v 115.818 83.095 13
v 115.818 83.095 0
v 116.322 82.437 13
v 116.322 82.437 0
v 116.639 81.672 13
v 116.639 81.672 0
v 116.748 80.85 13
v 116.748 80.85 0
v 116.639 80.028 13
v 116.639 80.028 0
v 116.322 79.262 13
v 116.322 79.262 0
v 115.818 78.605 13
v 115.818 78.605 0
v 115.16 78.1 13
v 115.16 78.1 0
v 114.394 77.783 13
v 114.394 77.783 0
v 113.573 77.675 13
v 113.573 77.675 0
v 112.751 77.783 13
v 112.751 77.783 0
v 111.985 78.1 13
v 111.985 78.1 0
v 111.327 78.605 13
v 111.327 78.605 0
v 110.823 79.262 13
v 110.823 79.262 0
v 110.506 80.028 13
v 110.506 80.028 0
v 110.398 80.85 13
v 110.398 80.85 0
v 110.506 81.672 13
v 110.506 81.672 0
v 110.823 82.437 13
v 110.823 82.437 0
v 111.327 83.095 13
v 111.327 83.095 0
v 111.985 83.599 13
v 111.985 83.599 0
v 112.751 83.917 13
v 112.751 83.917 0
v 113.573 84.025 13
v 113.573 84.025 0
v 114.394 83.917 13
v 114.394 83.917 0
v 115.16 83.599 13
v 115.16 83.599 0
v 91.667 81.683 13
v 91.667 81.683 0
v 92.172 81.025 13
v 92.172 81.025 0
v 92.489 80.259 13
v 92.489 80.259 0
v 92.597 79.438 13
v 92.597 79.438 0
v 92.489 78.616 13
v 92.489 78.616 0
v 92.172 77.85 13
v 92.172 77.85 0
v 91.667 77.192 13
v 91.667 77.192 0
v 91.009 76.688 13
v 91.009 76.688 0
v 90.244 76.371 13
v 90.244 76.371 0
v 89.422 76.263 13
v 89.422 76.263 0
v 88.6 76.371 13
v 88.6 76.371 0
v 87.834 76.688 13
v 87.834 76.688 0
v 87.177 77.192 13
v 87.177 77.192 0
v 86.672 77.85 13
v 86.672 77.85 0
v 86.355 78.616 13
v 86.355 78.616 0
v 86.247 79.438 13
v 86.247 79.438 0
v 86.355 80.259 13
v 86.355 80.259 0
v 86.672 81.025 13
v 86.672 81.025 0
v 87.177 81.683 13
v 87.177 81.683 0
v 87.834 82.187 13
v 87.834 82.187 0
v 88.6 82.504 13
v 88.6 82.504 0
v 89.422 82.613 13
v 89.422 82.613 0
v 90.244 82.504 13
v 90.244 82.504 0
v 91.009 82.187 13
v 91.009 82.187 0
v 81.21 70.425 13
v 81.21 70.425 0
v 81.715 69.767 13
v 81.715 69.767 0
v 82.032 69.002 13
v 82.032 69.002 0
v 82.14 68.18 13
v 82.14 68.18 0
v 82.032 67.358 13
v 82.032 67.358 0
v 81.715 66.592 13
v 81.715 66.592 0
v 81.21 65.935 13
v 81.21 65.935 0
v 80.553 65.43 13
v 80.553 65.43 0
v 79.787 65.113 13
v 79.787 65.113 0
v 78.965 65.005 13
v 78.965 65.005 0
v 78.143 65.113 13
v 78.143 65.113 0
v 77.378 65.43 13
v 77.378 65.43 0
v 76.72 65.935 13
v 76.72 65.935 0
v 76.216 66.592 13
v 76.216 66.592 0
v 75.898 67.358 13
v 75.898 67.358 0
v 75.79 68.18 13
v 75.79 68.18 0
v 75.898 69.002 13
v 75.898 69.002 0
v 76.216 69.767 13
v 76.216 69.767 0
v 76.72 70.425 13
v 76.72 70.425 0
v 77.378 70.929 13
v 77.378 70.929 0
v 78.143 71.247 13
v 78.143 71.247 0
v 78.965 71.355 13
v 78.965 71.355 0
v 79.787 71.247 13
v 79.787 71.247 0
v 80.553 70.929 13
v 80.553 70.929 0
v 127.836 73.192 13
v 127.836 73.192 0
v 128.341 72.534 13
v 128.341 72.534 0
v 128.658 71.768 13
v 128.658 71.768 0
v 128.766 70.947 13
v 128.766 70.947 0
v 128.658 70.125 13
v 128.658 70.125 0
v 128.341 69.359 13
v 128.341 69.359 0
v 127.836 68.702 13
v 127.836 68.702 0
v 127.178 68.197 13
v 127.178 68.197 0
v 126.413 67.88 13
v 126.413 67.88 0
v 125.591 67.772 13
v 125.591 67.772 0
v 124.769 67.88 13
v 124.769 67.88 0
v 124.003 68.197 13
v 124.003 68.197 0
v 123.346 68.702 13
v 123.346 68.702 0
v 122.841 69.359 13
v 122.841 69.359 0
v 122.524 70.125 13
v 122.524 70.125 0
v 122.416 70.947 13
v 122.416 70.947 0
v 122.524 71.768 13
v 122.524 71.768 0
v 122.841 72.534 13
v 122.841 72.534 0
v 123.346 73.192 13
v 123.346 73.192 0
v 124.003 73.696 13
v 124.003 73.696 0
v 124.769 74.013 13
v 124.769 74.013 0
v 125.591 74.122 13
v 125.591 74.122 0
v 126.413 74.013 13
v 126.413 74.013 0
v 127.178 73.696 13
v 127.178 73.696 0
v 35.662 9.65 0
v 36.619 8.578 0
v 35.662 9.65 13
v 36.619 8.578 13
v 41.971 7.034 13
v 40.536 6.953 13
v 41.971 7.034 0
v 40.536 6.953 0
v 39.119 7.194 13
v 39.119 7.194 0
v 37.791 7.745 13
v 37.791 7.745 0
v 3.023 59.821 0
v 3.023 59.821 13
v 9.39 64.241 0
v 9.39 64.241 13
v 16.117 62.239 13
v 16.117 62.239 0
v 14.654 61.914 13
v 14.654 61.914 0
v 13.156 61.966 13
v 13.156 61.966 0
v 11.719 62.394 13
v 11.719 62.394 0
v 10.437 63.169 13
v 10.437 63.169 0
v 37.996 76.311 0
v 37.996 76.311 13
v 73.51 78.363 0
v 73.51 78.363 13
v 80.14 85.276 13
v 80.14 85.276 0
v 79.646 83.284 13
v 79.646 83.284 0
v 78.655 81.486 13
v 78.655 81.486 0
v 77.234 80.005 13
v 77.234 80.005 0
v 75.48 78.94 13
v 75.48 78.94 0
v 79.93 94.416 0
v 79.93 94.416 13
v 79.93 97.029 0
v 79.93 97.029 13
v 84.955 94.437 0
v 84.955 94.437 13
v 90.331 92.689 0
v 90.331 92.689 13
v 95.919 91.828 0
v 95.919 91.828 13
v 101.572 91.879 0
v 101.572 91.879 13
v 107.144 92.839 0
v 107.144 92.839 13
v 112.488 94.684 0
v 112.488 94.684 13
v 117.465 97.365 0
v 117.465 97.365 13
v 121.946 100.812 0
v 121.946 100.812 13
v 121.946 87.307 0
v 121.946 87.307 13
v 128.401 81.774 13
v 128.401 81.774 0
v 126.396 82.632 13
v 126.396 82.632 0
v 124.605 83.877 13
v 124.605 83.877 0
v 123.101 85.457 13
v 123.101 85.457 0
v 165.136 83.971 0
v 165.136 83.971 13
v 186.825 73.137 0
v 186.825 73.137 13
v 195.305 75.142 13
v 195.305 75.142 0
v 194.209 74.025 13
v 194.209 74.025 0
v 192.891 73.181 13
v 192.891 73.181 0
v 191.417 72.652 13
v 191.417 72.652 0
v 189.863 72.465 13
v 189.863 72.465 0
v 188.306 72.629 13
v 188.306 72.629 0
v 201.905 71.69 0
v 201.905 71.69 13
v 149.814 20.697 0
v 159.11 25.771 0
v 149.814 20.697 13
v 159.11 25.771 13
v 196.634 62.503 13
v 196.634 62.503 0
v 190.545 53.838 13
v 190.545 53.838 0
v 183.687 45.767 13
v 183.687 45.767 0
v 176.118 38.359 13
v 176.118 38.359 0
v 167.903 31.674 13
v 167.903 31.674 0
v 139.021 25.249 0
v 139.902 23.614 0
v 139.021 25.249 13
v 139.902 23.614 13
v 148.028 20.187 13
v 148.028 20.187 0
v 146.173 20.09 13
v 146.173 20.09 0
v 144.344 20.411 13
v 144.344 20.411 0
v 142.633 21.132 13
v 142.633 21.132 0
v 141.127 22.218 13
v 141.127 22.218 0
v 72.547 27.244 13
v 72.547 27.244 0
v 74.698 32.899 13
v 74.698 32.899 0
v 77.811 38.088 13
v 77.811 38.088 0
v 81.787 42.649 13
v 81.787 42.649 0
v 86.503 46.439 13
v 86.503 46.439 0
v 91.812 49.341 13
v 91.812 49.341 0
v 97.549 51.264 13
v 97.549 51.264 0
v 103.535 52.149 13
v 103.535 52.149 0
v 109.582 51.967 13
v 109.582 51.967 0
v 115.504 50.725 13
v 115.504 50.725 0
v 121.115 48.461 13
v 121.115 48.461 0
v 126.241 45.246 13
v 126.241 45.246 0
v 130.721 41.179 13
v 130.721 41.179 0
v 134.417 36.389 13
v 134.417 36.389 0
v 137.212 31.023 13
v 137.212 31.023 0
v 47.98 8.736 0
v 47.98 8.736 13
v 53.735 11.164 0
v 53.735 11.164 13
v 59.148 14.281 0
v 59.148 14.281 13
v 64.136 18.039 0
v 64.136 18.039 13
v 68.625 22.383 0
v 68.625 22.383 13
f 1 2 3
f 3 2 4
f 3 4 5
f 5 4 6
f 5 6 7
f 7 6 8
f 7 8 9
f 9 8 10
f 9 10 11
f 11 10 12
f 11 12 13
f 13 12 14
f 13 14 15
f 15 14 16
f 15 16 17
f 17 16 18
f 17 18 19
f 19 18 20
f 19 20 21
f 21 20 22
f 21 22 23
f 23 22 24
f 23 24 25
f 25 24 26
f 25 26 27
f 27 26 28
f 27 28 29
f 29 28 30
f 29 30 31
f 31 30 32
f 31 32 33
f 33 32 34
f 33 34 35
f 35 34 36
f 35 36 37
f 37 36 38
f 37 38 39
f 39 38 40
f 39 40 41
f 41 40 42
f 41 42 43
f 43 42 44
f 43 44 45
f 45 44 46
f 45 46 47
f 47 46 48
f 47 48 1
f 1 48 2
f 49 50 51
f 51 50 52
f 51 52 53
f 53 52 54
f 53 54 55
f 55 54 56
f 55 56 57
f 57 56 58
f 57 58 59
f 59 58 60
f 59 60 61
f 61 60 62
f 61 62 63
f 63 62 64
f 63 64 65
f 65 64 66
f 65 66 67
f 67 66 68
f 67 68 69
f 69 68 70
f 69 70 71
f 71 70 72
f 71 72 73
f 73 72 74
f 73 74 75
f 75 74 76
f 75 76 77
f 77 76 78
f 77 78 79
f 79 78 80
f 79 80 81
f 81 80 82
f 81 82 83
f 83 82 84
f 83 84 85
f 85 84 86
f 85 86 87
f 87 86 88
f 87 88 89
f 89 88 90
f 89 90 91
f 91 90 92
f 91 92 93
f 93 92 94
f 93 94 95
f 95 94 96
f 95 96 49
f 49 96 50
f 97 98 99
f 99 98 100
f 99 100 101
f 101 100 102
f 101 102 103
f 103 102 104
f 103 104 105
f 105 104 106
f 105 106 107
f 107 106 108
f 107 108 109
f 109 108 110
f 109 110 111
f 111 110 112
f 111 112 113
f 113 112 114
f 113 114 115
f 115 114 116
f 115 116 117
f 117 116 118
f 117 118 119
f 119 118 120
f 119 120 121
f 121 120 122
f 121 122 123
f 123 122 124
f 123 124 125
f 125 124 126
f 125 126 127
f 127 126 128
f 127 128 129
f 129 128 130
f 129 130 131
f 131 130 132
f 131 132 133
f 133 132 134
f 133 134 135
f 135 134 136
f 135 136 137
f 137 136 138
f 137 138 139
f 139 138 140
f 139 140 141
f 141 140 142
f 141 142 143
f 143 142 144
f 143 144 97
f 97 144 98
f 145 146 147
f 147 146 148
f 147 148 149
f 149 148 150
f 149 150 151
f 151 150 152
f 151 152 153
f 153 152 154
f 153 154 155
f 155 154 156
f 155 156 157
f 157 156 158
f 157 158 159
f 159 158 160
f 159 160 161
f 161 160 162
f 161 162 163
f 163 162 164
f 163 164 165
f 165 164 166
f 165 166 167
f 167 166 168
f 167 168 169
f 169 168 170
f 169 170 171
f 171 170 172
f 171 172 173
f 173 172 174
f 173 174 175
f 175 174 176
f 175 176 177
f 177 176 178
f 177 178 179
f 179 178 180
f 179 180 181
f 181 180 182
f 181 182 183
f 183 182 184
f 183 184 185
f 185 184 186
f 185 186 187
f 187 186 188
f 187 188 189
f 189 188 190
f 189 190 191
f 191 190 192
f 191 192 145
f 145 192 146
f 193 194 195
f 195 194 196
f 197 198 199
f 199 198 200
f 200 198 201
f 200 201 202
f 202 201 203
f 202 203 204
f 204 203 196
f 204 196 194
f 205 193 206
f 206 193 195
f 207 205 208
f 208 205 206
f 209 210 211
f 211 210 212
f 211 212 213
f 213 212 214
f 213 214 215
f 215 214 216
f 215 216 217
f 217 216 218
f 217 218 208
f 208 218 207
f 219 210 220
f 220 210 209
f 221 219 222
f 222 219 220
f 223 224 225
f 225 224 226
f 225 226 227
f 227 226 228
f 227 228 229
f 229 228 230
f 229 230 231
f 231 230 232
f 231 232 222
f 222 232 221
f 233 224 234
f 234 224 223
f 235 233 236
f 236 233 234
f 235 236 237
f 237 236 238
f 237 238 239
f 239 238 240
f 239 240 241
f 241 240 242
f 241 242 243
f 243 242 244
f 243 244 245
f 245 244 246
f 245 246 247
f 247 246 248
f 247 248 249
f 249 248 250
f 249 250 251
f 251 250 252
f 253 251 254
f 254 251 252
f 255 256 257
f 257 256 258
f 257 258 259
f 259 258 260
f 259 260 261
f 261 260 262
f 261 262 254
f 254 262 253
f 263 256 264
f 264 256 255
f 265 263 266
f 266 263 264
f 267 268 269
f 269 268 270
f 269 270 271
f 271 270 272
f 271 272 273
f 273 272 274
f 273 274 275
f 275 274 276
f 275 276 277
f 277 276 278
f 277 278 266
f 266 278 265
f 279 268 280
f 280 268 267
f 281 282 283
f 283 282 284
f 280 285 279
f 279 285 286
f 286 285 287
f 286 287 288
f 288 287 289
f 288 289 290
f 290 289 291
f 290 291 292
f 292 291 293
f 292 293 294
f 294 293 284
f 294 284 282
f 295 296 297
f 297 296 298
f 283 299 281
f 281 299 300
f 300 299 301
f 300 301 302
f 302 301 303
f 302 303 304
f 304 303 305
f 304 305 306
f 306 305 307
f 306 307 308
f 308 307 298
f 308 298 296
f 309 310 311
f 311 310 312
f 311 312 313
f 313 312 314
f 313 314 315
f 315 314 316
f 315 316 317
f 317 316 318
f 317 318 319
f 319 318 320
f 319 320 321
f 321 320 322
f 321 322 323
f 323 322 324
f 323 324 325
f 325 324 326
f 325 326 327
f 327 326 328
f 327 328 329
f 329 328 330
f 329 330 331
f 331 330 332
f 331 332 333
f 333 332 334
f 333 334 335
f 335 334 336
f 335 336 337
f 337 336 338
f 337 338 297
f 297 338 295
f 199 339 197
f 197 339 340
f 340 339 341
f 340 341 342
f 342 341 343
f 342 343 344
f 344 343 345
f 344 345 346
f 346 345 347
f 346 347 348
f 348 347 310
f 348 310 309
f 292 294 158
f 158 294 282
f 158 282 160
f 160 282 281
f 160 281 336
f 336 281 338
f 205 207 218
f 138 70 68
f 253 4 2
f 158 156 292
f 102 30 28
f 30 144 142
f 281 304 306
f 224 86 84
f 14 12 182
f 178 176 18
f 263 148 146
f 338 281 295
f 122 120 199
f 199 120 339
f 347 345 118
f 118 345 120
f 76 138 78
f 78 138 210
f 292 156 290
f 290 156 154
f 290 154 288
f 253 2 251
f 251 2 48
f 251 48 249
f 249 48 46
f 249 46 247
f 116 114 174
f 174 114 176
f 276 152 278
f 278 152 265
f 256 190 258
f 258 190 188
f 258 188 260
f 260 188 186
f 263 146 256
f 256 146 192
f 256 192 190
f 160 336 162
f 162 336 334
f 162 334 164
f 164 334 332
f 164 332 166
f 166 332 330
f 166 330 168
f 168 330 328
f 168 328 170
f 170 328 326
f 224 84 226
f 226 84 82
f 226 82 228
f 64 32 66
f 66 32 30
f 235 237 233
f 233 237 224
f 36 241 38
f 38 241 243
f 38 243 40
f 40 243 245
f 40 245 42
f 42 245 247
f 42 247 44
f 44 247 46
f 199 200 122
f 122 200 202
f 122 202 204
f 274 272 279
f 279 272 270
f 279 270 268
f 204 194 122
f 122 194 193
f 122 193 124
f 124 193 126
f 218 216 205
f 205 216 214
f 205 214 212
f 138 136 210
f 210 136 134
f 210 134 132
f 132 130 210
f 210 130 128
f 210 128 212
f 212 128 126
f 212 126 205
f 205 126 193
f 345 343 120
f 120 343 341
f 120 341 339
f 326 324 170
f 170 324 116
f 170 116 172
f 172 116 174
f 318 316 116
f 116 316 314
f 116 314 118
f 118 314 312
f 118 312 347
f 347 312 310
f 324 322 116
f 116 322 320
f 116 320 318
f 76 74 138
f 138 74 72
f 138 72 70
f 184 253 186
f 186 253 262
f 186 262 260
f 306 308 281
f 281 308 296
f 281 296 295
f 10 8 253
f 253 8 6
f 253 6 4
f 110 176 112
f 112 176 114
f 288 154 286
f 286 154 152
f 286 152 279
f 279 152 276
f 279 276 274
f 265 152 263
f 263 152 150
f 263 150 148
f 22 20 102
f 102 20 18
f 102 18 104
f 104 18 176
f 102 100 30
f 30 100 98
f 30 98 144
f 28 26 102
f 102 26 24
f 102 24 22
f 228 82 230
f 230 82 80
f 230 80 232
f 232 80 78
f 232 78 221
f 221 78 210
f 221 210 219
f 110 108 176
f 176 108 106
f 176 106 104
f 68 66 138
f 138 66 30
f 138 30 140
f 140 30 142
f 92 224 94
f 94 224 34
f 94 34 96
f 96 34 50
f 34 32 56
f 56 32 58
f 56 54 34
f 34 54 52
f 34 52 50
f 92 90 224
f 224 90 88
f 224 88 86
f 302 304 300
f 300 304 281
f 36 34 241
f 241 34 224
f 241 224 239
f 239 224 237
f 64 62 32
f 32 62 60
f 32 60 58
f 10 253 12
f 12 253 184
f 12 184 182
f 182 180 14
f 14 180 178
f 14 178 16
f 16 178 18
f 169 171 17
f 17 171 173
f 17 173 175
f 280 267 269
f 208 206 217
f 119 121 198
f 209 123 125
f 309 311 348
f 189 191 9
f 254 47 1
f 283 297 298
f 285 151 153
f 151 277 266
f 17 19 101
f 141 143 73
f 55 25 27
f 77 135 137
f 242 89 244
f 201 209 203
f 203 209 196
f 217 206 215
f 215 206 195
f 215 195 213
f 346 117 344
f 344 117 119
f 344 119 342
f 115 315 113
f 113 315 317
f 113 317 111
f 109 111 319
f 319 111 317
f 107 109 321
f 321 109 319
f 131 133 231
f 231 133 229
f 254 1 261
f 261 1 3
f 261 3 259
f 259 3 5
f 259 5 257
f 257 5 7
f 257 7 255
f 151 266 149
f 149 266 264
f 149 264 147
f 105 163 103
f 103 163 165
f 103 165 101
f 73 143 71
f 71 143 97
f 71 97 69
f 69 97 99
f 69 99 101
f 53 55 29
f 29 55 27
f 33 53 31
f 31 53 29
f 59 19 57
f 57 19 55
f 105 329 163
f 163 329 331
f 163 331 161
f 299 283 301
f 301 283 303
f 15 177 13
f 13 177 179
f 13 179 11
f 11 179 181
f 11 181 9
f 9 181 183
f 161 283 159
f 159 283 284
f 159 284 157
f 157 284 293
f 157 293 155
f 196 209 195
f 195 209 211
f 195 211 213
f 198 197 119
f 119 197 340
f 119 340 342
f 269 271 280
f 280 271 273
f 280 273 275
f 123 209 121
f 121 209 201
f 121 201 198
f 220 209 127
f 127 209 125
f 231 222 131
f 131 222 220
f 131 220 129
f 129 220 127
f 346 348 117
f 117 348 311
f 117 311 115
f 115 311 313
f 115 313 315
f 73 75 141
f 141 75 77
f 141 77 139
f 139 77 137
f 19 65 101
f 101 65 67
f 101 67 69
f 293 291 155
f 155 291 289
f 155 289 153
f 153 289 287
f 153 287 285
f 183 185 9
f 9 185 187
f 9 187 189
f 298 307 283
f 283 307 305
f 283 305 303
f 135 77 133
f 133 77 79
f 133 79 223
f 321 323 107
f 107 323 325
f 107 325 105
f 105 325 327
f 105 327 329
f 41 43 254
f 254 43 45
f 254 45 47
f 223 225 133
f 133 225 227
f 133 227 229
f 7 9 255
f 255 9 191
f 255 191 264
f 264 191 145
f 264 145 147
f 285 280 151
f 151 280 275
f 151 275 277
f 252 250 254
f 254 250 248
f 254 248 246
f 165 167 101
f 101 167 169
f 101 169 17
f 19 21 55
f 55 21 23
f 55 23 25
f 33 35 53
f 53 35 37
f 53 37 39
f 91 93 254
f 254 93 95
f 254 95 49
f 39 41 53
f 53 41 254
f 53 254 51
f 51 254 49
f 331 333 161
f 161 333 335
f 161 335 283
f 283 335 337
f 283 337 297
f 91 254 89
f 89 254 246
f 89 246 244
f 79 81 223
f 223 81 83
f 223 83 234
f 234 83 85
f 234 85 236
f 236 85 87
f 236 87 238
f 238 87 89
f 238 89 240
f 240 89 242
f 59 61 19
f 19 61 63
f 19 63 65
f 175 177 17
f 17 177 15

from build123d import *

# Parameters (mm, degrees)
ESBO_O1_R                = 3.175
RESSALTO_EXTRUS_O1_DEPTH = 13


with BuildPart() as part:
    # Esboço1 → Ressalto-extrusão1 (new body)
    with BuildSketch(Plane.XY):
        with BuildLine():
            Line((35.385230037, 10.075467345), (3.022965856, 59.821309359))
            Line((3.022965856, 59.821309359), (9.389592457, 64.241305524))
            ThreePointArc((9.389592457, 64.241305524), (12.424025355, 62.134521854), (16.11664555, 62.238812532))
            Line((16.11664555, 62.238812532), (37.995734983, 76.310625699))
            Line((37.995734983, 76.310625699), (73.510181395, 78.362700262))
            ThreePointArc((73.510181395, 78.362700262), (77.993066809, 80.699414035), (80.140456658, 85.276007717))
            Line((80.140456658, 85.276007717), (79.930003073, 94.415706286))
            Line((79.930003073, 94.415706286), (79.930003073, 97.029046835))
            ThreePointArc((79.930003073, 97.029046835), (101.572218687, 91.878964915), (121.946388489, 100.812163968))
            Line((121.946388489, 100.812163968), (121.946388489, 97.854479056))
            Line((121.946388489, 97.854479056), (121.946388489, 87.306940797))
            ThreePointArc((121.946388489, 87.306940797), (124.605004373, 83.87722317), (128.400566482, 81.773676237))
            Line((128.400566482, 81.773676237), (165.135958914, 83.971302002))
            Line((165.135958914, 83.971302002), (186.825026221, 73.136677472))
            ThreePointArc((186.825026221, 73.136677472), (191.417140339, 72.651683009), (195.305426608, 75.142458308))
            Line((195.305426608, 75.142458308), (201.904648359, 71.689614729))
            ThreePointArc((201.904648359, 71.689614729), (180.384547639, 42.366647273), (150.812504997, 21.190116644))
            ThreePointArc((150.812504997, 21.190116644), (150.313679981, 20.942400372), (149.813666262, 20.697092344))
            ThreePointArc((149.813666262, 20.697092344), (143.468376798, 20.722988132), (139.020600507, 25.248543905))
            ThreePointArc((139.020600507, 25.248543905), (106.562536674, 52.191838172), (72.546533139, 27.244322919))
            ThreePointArc((72.546533139, 27.244322919), (59.147798476, 14.281047119), (41.970794252, 7.033762392))
            ThreePointArc((41.970794252, 7.033762392), (38.439332559, 7.432489412), (35.662068876, 9.64992292))
            Line((35.662068876, 9.64992292), (35.385230037, 10.075467345))
        make_face()
        with Locations((89.421948725, 79.437523552)):
            Circle(ESBO_O1_R, mode=Mode.SUBTRACT)
        with Locations((113.572558486, 80.849829661)):
            Circle(ESBO_O1_R, mode=Mode.SUBTRACT)
        with Locations((78.965142383, 68.179773497)):
            Circle(ESBO_O1_R, mode=Mode.SUBTRACT)
        with Locations((125.590943677, 70.946640577)):
            Circle(ESBO_O1_R, mode=Mode.SUBTRACT)
    extrude(amount=RESSALTO_EXTRUS_O1_DEPTH)


solid = part.part
